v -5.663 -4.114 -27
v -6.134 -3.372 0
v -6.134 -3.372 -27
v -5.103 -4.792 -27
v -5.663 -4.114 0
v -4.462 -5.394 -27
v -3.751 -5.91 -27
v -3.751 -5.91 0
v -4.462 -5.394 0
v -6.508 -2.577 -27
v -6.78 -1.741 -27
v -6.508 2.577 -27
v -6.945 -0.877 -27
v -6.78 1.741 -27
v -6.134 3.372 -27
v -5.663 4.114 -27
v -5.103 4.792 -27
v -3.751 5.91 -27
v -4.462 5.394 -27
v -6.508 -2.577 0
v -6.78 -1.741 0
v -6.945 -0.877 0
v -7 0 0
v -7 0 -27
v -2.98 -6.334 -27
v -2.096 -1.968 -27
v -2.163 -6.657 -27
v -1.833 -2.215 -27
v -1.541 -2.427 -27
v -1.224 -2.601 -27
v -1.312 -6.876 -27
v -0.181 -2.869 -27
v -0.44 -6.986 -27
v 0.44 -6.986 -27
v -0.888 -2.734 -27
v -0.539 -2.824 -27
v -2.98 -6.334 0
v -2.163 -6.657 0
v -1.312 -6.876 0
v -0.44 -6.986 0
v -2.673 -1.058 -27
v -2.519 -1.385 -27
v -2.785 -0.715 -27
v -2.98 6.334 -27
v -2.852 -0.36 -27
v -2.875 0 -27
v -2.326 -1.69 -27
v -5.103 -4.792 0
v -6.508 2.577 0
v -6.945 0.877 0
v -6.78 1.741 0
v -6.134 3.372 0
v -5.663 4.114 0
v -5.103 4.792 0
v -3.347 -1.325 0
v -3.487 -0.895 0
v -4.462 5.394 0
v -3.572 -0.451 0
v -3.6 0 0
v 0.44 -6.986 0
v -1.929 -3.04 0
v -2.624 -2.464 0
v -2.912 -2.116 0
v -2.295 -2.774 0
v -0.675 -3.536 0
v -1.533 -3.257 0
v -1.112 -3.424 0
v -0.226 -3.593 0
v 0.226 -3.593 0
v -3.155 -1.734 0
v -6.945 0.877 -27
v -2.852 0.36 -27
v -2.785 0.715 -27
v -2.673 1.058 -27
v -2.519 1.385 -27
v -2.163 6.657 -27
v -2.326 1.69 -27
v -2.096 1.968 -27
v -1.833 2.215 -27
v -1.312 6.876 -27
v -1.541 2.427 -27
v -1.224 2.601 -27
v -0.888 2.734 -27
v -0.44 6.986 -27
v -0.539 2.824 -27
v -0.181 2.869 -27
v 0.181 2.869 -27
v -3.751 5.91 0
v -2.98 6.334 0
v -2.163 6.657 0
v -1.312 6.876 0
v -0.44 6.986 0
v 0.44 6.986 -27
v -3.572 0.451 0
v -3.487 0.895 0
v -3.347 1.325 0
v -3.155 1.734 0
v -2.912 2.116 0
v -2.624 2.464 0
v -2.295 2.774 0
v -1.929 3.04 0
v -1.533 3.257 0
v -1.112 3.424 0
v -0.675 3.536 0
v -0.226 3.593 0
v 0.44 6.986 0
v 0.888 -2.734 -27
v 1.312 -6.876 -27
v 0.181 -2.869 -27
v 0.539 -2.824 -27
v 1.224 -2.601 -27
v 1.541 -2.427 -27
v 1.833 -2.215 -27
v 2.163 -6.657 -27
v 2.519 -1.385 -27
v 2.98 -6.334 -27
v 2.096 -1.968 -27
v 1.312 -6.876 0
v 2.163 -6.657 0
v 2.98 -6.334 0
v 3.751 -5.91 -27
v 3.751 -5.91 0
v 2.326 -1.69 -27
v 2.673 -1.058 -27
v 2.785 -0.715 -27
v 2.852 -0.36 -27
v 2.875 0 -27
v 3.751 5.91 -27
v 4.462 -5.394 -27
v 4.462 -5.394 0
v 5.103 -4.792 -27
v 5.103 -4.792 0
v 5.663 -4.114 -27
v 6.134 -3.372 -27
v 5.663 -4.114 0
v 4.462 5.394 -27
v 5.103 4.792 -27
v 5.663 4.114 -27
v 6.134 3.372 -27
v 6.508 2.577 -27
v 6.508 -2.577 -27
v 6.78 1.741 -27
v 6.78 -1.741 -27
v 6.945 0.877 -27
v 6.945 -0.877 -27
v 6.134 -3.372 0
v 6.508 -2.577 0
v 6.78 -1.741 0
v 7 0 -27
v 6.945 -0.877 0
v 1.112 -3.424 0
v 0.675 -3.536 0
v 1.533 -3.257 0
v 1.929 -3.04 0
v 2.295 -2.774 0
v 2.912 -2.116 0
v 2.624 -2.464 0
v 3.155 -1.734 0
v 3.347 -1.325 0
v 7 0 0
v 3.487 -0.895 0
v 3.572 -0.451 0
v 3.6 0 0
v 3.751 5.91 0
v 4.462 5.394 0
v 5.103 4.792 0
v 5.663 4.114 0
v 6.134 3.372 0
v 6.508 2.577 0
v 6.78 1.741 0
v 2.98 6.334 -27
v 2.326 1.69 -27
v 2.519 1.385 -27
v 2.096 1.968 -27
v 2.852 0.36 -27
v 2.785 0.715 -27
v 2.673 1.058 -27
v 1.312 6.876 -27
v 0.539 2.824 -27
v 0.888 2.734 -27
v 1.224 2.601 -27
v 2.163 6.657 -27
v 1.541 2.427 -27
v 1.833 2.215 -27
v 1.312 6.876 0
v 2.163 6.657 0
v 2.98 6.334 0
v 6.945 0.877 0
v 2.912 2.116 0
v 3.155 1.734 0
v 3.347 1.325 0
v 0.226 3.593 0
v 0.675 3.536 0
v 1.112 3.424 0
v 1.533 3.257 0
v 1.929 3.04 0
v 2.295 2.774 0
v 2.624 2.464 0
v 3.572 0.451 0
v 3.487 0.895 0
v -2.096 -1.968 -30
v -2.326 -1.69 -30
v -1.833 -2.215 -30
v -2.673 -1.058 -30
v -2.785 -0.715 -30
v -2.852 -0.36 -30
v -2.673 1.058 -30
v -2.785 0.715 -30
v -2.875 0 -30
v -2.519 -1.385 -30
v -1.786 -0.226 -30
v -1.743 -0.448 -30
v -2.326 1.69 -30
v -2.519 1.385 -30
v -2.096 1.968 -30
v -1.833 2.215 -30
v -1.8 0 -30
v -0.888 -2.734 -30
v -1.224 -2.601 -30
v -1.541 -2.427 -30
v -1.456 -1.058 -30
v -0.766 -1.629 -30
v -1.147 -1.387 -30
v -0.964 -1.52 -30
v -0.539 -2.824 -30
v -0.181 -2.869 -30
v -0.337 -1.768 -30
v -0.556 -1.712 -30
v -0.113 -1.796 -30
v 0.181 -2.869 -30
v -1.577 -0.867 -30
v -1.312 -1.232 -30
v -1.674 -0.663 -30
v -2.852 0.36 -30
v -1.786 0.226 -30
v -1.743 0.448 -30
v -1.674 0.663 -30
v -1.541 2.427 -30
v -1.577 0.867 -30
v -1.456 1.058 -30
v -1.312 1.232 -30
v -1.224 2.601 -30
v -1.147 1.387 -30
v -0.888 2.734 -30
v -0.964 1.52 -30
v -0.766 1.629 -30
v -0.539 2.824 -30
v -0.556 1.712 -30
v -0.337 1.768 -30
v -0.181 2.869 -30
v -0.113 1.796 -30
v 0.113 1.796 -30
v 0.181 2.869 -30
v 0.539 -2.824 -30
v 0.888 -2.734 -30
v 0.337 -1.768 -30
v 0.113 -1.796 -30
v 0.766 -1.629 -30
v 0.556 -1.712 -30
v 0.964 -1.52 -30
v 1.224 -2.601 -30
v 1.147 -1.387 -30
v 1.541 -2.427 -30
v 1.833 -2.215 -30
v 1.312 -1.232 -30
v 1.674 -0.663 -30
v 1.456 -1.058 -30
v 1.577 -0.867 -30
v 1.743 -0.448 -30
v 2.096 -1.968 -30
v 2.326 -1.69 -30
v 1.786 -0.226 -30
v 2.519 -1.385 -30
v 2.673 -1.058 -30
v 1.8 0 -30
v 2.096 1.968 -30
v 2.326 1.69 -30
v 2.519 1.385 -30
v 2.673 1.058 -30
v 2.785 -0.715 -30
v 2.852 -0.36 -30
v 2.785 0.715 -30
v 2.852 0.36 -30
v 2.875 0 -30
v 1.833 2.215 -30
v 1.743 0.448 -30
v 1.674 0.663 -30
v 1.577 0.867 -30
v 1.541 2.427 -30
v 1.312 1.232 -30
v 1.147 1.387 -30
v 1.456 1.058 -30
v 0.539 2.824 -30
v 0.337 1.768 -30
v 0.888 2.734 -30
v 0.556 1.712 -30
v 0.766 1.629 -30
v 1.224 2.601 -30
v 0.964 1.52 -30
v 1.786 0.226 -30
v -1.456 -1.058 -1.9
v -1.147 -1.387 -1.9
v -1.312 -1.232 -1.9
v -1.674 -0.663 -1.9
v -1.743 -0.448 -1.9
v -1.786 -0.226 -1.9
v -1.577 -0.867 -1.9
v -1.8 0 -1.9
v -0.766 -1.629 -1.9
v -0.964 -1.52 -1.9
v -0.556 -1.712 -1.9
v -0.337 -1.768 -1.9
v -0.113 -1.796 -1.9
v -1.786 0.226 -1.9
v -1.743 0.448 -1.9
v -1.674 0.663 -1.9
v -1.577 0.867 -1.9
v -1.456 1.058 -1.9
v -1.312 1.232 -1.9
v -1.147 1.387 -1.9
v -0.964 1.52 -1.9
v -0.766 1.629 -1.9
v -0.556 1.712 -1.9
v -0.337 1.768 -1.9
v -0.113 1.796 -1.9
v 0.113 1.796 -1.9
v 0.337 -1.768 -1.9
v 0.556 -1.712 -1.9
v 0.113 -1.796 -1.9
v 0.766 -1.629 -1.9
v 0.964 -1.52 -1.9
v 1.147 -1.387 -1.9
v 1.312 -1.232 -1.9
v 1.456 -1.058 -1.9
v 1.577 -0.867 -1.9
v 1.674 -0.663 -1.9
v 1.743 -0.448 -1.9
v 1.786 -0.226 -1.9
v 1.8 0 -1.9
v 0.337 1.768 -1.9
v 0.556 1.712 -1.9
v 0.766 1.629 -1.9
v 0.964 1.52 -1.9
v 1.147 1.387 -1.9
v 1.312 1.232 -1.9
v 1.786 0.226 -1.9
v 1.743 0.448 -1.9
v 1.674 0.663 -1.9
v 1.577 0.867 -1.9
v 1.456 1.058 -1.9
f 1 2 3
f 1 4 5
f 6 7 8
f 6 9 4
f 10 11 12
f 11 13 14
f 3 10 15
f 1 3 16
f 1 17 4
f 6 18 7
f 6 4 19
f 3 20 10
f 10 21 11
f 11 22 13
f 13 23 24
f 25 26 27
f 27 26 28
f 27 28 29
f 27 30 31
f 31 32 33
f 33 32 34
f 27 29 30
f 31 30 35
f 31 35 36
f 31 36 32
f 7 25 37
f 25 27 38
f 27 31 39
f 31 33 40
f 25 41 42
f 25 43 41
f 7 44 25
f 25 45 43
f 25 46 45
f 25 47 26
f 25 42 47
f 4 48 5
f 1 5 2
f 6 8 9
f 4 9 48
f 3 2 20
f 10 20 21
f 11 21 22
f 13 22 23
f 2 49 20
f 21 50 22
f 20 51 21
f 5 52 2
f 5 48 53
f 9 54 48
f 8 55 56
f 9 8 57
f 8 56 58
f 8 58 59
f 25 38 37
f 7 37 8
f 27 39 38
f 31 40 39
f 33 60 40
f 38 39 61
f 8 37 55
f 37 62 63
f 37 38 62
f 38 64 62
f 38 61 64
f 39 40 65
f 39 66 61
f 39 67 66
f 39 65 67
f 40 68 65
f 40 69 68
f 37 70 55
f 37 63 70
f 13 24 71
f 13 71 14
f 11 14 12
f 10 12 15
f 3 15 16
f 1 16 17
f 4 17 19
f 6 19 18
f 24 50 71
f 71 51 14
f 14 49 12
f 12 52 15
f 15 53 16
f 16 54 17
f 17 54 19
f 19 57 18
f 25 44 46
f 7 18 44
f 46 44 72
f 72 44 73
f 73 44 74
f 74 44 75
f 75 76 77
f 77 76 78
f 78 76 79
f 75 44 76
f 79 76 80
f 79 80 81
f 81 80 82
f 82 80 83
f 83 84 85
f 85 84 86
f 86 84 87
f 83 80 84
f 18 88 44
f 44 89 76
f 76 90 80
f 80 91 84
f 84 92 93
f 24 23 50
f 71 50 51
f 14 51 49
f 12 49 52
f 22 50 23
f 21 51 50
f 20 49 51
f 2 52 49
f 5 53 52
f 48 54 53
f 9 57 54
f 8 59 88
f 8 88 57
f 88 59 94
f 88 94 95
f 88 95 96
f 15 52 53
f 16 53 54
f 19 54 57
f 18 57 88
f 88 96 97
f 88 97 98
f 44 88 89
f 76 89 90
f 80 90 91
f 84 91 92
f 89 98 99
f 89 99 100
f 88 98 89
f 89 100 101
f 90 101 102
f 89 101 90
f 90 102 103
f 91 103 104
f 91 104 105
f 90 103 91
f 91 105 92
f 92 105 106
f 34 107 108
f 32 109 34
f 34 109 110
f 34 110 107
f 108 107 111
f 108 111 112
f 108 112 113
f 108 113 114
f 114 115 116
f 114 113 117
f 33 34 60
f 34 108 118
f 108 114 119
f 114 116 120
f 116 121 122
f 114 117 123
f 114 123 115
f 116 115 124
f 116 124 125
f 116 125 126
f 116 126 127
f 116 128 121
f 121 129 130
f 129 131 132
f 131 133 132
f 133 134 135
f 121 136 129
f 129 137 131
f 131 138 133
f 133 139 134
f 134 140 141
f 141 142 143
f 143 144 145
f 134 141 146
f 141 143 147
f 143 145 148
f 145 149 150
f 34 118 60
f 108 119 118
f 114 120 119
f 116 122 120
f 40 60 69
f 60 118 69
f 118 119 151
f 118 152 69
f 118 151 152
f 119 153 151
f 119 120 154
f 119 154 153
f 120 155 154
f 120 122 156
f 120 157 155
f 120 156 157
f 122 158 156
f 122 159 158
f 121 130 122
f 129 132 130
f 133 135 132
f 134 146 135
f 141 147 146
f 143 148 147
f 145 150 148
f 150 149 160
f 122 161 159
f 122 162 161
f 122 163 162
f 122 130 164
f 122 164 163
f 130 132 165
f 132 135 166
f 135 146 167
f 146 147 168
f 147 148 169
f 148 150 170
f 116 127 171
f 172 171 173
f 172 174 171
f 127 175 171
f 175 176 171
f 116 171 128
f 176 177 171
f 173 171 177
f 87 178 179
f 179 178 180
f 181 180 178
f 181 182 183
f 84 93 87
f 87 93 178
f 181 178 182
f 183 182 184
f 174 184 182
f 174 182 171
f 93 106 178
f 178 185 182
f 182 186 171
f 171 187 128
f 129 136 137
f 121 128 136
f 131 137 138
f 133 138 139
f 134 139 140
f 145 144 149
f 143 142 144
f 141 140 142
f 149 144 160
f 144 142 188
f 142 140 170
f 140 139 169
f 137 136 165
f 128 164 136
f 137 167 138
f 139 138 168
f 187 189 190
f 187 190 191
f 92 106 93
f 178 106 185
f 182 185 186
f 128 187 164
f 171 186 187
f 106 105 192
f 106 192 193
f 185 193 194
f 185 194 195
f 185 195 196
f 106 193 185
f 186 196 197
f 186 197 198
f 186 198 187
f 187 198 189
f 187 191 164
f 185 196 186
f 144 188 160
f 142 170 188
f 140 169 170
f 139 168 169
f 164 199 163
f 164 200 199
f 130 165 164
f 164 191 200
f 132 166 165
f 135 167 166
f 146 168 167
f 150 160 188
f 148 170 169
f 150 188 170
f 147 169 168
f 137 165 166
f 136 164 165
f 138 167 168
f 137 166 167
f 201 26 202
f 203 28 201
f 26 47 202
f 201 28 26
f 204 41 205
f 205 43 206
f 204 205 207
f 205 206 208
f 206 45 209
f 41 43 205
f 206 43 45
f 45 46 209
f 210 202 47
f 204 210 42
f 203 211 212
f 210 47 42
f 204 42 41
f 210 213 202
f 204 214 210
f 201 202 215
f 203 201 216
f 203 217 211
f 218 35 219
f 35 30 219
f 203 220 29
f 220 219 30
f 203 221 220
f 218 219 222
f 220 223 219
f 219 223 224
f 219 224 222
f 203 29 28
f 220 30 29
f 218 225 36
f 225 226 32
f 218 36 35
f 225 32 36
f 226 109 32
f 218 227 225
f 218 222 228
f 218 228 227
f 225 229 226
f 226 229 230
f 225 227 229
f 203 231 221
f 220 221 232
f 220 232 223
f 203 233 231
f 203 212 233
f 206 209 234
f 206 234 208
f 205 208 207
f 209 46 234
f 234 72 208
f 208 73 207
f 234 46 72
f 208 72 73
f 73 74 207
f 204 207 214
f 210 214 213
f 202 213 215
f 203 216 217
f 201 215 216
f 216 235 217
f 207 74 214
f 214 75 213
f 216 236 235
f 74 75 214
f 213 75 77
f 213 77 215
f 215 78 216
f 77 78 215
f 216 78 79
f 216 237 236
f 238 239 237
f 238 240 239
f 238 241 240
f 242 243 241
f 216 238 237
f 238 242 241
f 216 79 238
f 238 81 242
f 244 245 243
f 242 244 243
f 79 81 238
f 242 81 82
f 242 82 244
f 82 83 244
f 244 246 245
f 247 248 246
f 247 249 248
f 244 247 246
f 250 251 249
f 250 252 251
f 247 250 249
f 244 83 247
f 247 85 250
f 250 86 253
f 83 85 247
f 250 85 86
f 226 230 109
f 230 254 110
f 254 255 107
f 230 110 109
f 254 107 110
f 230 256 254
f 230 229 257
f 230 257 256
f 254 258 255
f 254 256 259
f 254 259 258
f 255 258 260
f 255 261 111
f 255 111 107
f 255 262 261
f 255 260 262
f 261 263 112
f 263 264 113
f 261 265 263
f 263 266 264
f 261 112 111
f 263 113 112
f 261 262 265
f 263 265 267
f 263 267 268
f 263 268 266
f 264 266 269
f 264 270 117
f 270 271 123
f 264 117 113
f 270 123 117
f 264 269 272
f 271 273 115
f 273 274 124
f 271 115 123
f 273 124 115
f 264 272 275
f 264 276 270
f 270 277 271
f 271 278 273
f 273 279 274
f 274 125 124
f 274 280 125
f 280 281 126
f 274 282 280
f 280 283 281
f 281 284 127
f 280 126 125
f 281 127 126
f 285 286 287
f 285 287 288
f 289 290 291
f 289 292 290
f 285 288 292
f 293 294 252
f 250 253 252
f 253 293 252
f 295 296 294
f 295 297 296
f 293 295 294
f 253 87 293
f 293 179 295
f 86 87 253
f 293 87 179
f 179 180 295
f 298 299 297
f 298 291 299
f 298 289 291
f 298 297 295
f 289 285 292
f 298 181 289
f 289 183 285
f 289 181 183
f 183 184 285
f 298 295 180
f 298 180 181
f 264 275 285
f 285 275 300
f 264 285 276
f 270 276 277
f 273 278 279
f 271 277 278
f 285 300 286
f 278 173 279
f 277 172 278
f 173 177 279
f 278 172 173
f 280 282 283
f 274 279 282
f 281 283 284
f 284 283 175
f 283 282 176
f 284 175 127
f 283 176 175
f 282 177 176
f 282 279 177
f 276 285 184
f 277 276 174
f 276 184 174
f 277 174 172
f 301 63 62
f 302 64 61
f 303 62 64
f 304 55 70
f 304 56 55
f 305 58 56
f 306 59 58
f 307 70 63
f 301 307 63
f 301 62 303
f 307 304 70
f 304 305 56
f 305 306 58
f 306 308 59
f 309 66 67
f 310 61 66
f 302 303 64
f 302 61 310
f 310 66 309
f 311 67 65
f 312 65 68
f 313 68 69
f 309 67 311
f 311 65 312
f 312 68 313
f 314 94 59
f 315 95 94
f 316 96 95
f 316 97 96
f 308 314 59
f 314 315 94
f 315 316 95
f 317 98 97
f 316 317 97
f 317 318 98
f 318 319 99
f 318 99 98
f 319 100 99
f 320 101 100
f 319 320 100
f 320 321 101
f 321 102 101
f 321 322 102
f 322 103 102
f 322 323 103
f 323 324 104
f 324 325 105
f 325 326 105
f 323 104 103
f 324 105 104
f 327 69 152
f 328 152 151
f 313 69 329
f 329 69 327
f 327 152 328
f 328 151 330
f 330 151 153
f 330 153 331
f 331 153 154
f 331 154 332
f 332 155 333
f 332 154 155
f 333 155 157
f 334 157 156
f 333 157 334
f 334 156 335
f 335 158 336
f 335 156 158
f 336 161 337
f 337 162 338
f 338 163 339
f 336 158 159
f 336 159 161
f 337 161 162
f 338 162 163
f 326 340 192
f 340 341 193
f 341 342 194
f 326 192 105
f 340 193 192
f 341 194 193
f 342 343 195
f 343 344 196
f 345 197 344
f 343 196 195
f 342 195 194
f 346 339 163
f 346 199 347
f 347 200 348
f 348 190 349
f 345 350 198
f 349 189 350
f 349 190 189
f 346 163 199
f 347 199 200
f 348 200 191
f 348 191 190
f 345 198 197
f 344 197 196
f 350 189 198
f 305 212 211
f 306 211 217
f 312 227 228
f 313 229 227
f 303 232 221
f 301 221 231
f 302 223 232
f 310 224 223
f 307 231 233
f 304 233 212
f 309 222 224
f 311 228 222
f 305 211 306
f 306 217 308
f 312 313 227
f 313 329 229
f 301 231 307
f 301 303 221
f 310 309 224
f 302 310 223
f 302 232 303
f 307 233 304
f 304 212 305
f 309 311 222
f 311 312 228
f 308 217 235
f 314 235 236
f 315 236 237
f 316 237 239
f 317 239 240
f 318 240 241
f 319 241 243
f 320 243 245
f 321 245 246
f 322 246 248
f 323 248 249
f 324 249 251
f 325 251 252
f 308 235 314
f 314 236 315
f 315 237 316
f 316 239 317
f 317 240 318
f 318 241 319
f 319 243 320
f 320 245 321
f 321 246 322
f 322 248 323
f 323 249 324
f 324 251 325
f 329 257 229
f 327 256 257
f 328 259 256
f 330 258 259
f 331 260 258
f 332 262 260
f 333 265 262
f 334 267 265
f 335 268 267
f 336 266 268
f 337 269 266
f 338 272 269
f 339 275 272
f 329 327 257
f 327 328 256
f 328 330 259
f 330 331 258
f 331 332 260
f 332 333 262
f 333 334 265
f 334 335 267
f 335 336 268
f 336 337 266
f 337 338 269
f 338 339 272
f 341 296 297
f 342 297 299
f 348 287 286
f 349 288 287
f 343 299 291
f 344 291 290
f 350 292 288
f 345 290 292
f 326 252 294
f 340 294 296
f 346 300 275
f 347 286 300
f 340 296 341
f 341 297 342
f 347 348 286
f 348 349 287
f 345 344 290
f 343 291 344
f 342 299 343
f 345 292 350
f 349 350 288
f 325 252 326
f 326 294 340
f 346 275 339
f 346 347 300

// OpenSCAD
$fn = 50;

difference() {
	union() {
		translate(v = [0, 0, -27.0]) {
			cylinder(h = 27, r = 7.0);
		}
		#translate(v = [0, 0, -30.0]) {
			cylinder(h = 30, r = 2.875);
		}
	}
	union() {
		translate(v = [0, 0, 0]) {
			rotate(a = [0, 0, 0]) {
				difference() {
					union() {
						translate(v = [0, 0, -30.0]) {
							cylinder(h = 30, r = 1.5);
						}
						translate(v = [0, 0, -1.9]) {
							cylinder(h = 1.9, r1 = 1.8, r2 = 3.6);
						}
						translate(v = [0, 0, -30.0]) {
							cylinder(h = 30, r = 1.8);
						}
						translate(v = [0, 0, -30.0]) {
							cylinder(h = 30, r = 1.5);
						}
					}
					union();
				}
			}
		}
	}
}
